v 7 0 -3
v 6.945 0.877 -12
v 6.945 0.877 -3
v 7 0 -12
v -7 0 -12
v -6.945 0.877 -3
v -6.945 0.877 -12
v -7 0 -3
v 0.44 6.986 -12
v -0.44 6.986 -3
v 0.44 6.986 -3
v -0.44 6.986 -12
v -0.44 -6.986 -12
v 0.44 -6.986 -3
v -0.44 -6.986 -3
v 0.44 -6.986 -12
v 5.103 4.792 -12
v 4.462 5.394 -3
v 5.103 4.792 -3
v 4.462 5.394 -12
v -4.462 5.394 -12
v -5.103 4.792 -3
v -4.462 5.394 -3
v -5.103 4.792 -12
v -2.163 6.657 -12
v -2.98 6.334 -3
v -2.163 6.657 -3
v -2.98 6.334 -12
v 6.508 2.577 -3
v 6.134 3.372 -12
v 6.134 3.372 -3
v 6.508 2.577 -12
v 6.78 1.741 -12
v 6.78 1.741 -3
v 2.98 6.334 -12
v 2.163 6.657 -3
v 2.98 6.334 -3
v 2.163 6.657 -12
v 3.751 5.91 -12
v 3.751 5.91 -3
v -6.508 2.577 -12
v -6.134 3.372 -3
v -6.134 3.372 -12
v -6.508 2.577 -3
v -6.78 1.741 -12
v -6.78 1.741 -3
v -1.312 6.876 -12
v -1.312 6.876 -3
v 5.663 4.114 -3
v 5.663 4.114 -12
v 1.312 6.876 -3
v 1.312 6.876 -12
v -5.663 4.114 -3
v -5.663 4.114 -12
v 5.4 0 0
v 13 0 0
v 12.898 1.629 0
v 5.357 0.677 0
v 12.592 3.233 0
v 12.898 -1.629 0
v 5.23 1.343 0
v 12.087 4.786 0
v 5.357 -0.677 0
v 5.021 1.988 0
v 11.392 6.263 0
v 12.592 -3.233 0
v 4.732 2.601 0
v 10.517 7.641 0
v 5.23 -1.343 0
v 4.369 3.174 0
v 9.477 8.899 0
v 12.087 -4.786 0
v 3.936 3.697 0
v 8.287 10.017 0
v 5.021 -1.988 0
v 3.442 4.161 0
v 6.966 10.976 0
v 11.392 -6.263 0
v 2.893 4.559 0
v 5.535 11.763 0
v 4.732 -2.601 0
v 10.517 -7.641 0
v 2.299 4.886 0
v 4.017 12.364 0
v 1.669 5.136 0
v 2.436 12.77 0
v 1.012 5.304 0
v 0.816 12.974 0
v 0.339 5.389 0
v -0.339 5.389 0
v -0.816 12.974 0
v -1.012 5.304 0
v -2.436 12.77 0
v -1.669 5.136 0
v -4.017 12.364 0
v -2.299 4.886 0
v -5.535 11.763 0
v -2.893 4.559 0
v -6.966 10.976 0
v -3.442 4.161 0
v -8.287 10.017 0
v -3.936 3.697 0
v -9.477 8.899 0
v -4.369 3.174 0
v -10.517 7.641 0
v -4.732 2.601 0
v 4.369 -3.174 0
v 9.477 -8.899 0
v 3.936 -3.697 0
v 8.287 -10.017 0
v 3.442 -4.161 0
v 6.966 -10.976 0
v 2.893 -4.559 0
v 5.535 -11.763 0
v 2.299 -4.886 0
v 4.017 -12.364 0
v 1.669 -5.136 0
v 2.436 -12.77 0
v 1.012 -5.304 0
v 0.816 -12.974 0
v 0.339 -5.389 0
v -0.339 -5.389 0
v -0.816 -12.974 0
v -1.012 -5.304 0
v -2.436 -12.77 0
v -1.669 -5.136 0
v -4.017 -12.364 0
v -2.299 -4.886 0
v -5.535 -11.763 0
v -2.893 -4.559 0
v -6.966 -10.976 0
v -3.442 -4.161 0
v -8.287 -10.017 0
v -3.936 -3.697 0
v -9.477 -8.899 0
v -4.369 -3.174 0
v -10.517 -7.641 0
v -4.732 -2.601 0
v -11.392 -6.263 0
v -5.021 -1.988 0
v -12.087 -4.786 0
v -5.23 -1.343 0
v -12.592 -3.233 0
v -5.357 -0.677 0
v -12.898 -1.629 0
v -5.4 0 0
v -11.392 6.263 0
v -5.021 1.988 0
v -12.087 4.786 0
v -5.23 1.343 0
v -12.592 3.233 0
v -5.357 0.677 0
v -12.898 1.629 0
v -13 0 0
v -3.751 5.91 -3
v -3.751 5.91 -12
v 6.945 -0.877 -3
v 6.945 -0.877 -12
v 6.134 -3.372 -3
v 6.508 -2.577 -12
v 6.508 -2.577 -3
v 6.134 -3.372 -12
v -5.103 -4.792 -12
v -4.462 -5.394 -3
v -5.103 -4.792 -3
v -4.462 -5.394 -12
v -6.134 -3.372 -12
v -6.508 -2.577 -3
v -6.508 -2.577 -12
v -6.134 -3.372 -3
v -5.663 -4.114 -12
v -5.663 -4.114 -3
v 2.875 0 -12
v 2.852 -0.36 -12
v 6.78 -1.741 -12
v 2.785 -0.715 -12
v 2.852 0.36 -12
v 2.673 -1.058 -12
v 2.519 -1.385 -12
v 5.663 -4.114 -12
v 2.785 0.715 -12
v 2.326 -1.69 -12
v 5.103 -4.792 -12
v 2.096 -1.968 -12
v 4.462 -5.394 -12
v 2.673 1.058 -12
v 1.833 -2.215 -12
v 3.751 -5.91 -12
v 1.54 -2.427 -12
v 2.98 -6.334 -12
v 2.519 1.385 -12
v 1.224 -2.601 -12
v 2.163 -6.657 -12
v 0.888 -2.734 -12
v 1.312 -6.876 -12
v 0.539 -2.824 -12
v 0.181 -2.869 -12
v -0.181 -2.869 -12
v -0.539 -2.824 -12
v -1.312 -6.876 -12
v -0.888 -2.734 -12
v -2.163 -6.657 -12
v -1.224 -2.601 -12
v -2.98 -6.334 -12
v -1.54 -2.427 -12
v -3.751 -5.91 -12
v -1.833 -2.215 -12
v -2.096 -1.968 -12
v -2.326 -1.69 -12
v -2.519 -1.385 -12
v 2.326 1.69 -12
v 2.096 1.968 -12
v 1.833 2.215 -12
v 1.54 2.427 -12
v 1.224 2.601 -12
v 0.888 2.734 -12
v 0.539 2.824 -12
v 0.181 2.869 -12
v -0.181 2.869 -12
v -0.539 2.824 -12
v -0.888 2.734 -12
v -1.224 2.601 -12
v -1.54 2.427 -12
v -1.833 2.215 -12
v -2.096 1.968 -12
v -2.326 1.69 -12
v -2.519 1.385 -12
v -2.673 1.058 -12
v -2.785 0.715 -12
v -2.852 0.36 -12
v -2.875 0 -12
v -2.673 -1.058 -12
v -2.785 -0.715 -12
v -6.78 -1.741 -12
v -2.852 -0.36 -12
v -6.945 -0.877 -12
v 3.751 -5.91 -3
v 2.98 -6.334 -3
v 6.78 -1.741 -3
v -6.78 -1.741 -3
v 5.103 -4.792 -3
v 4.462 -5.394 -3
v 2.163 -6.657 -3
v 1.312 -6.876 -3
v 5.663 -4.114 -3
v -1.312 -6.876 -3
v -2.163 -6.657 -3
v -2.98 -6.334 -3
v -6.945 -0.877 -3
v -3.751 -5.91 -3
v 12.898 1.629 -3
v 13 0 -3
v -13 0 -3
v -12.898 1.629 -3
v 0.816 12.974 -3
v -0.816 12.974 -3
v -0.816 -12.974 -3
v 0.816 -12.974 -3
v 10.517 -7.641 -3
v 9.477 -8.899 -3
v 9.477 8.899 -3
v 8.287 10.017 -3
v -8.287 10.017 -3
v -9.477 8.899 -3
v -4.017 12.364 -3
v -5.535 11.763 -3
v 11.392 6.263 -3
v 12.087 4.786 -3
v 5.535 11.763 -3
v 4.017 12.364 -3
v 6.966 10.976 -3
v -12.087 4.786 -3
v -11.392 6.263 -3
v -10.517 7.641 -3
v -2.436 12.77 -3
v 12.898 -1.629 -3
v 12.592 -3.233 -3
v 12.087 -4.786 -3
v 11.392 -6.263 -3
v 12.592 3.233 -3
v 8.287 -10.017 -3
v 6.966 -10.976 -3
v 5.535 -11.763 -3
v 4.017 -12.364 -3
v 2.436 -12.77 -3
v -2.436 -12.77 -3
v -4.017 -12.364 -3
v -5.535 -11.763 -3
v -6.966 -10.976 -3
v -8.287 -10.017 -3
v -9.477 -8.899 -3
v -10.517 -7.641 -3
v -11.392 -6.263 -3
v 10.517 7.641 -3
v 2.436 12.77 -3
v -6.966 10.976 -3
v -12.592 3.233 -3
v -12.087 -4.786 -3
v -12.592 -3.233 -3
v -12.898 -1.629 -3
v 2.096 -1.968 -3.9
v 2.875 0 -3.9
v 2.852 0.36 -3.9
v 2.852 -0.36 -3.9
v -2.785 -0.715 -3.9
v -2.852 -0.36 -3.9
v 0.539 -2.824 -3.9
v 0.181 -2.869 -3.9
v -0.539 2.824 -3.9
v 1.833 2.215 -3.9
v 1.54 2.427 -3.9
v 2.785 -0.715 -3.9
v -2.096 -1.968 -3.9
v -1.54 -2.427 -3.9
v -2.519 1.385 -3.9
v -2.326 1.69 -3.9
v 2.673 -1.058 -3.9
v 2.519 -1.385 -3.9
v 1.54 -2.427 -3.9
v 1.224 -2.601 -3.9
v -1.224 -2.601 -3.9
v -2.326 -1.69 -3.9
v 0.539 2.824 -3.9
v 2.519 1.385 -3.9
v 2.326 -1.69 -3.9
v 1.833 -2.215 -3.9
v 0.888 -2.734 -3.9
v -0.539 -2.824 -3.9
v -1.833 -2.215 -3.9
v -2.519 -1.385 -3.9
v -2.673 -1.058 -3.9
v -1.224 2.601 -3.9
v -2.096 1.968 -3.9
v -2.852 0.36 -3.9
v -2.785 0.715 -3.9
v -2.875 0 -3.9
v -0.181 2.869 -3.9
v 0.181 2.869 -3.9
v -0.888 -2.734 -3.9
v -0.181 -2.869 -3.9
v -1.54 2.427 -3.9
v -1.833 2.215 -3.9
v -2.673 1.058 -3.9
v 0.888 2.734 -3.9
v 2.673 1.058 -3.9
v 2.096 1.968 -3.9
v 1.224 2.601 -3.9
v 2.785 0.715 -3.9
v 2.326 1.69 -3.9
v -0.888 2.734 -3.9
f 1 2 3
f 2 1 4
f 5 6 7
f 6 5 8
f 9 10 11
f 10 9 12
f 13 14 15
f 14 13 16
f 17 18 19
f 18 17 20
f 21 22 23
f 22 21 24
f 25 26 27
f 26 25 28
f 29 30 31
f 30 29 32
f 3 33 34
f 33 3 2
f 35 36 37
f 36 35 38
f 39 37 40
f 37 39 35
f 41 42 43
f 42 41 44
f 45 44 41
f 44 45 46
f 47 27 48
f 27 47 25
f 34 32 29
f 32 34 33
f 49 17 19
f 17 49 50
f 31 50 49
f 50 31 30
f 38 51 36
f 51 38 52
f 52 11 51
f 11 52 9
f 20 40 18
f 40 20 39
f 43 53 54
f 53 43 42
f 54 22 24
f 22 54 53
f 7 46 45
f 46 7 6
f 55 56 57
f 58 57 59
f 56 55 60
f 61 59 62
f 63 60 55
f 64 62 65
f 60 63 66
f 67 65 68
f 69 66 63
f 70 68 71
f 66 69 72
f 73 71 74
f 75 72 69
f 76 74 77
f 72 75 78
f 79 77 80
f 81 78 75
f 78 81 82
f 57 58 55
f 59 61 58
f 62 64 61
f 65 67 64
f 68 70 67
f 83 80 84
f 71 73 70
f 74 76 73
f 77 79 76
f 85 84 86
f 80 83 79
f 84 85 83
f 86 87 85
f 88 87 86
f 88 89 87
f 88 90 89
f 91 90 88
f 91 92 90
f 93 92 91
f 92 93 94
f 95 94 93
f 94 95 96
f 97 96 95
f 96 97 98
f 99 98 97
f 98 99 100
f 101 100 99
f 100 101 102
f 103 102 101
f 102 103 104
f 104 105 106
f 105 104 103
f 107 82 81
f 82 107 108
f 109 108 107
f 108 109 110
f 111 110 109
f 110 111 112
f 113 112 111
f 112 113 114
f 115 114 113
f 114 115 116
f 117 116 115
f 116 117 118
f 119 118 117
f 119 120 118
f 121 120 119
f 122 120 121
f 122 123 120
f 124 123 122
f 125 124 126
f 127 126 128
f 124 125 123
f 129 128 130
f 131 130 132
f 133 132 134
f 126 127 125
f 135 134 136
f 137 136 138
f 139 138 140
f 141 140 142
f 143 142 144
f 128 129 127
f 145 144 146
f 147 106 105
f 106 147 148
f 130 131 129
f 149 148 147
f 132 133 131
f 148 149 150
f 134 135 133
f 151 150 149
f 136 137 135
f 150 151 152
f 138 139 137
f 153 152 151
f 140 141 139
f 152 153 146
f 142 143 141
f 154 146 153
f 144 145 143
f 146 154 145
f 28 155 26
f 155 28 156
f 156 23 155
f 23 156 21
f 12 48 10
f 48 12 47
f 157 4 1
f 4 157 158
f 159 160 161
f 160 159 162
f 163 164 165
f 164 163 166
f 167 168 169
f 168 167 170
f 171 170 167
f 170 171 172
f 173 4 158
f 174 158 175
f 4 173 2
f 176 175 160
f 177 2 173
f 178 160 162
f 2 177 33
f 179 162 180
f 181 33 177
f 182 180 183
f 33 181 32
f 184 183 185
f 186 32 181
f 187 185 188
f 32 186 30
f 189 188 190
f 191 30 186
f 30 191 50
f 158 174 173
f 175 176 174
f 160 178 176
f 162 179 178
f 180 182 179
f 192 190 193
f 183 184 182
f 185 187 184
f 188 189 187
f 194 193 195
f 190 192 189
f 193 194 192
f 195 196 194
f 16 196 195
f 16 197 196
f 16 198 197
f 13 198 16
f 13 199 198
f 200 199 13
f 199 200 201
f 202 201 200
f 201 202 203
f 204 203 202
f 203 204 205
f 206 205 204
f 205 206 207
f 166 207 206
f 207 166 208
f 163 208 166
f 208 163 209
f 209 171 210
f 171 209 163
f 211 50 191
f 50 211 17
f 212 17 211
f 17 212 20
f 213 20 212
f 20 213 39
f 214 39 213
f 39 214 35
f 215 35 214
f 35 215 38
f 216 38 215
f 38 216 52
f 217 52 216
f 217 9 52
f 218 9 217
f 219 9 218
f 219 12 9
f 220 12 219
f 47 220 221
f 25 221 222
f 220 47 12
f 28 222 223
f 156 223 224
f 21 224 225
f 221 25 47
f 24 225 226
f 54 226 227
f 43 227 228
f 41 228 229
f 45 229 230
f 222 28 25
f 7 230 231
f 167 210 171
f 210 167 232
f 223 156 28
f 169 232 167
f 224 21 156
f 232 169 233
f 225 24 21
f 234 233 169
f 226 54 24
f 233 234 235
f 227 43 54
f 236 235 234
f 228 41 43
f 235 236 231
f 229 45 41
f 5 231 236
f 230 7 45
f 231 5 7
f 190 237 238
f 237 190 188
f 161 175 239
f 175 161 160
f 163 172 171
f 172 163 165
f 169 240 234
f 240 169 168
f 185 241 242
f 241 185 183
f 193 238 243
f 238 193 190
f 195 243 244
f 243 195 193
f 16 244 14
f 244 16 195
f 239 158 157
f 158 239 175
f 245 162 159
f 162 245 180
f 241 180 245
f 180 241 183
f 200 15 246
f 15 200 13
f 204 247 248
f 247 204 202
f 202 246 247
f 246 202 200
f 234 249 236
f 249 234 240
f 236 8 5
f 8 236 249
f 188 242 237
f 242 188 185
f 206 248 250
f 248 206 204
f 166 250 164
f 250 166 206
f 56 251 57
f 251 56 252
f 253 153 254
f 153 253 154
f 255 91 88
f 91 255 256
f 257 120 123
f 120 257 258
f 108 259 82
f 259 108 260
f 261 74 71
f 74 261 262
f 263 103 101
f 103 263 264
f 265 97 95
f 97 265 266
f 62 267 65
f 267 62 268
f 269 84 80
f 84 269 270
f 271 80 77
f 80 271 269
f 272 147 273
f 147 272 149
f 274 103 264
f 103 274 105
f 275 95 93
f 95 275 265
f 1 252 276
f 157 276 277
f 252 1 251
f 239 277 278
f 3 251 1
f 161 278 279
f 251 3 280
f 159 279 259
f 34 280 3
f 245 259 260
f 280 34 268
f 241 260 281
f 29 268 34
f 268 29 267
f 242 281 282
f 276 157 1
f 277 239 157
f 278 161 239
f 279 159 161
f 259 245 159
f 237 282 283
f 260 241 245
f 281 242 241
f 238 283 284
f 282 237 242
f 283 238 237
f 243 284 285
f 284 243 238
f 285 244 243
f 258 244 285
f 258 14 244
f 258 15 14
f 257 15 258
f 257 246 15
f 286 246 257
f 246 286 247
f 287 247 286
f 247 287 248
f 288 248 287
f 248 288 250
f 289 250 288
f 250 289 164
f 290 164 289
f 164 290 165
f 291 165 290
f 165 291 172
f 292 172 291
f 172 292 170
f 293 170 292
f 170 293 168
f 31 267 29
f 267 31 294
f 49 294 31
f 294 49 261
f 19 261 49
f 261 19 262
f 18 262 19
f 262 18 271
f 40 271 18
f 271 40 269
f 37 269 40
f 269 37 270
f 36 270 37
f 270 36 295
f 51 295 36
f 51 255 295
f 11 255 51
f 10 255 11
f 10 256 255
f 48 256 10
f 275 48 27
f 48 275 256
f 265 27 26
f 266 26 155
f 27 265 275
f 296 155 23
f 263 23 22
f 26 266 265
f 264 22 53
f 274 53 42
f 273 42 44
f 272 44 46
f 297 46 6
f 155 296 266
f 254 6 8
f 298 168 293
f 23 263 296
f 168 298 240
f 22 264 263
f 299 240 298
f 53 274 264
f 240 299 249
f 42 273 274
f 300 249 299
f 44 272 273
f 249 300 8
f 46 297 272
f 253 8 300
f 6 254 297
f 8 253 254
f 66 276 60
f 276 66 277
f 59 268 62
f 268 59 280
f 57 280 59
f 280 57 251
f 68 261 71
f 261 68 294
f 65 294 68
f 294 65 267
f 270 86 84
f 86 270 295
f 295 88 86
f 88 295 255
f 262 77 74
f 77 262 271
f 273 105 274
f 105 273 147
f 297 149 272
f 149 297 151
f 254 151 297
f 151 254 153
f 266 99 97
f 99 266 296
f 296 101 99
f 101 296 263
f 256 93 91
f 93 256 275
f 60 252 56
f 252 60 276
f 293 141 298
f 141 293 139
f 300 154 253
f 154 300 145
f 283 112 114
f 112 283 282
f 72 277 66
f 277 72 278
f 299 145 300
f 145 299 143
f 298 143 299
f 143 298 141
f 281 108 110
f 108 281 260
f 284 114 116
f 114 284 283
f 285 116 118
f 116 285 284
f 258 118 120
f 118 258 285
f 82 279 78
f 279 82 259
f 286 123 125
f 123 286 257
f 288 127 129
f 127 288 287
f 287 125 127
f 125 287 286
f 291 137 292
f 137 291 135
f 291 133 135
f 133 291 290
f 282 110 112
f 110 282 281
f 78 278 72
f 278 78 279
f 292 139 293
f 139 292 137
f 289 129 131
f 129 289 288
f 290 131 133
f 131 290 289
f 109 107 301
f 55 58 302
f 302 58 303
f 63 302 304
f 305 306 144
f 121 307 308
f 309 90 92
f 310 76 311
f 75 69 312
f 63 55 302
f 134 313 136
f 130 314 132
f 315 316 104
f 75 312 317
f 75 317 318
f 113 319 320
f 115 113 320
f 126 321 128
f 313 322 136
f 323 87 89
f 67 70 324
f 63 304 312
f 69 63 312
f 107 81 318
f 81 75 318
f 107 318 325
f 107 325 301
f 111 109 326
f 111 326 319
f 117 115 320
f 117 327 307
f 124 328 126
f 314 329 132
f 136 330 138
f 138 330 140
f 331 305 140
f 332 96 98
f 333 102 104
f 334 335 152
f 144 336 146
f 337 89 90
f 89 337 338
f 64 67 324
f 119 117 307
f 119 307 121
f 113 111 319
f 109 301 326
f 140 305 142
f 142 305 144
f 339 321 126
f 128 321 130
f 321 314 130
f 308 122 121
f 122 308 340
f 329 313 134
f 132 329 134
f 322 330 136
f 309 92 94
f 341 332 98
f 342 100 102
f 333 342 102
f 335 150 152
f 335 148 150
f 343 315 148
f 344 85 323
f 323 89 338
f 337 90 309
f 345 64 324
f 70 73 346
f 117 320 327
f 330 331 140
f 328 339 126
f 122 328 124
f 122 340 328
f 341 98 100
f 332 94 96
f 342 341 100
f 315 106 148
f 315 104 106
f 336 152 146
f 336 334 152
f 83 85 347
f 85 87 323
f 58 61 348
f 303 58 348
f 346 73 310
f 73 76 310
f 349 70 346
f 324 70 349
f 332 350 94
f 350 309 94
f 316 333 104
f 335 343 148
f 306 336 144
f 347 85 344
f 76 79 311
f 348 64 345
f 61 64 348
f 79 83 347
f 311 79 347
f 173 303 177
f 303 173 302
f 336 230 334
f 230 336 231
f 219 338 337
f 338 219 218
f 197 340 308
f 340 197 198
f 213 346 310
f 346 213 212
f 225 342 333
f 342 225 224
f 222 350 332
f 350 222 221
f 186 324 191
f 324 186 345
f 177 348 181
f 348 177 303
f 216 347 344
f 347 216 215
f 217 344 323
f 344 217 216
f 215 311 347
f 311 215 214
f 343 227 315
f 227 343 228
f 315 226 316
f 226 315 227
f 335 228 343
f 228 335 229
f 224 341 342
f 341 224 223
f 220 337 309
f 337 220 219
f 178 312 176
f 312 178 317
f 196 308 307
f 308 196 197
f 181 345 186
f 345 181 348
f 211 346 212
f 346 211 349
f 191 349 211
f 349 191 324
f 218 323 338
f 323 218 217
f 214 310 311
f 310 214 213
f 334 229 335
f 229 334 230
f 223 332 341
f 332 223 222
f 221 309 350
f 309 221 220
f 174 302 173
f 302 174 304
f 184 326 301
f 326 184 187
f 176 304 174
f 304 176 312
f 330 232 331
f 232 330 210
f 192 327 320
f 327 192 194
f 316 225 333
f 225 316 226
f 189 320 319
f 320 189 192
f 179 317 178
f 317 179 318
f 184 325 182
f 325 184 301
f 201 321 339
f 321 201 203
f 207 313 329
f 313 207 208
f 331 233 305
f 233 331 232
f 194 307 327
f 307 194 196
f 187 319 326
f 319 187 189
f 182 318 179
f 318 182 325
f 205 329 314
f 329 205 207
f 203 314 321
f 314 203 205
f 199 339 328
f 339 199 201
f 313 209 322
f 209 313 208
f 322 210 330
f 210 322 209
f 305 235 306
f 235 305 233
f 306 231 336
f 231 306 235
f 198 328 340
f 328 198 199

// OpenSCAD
$fn = 50;


difference() {
	union() {
		translate(v = [0, 0, -12.0000000000]) {
			cylinder(h = 12, r = 7.0000000000);
		}
		translate(v = [0, 0, -3.0000000000]) {
			cylinder(h = 3, r = 13.0000000000);
		}
	}
	union() {
		translate(v = [0, 0, 0]) {
			rotate(a = [0, 0, 0]) {
				difference() {
					union() {
						#translate(v = [0, 0, -12.0000000000]) {
							cylinder(h = 12, r = 2.6000000000);
						}
						#translate(v = [0, 0, -3.9000000000]) {
							cylinder(h = 3.9000000000, r1 = 2.8750000000, r2 = 5.4000000000);
						}
						#translate(v = [0, 0, -12.0000000000]) {
							cylinder(h = 12, r = 2.8750000000);
						}
						#translate(v = [0, 0, -12.0000000000]) {
							cylinder(h = 12, r = 2.6000000000);
						}
					}
					union();
				}
			}
		}
	}
}
